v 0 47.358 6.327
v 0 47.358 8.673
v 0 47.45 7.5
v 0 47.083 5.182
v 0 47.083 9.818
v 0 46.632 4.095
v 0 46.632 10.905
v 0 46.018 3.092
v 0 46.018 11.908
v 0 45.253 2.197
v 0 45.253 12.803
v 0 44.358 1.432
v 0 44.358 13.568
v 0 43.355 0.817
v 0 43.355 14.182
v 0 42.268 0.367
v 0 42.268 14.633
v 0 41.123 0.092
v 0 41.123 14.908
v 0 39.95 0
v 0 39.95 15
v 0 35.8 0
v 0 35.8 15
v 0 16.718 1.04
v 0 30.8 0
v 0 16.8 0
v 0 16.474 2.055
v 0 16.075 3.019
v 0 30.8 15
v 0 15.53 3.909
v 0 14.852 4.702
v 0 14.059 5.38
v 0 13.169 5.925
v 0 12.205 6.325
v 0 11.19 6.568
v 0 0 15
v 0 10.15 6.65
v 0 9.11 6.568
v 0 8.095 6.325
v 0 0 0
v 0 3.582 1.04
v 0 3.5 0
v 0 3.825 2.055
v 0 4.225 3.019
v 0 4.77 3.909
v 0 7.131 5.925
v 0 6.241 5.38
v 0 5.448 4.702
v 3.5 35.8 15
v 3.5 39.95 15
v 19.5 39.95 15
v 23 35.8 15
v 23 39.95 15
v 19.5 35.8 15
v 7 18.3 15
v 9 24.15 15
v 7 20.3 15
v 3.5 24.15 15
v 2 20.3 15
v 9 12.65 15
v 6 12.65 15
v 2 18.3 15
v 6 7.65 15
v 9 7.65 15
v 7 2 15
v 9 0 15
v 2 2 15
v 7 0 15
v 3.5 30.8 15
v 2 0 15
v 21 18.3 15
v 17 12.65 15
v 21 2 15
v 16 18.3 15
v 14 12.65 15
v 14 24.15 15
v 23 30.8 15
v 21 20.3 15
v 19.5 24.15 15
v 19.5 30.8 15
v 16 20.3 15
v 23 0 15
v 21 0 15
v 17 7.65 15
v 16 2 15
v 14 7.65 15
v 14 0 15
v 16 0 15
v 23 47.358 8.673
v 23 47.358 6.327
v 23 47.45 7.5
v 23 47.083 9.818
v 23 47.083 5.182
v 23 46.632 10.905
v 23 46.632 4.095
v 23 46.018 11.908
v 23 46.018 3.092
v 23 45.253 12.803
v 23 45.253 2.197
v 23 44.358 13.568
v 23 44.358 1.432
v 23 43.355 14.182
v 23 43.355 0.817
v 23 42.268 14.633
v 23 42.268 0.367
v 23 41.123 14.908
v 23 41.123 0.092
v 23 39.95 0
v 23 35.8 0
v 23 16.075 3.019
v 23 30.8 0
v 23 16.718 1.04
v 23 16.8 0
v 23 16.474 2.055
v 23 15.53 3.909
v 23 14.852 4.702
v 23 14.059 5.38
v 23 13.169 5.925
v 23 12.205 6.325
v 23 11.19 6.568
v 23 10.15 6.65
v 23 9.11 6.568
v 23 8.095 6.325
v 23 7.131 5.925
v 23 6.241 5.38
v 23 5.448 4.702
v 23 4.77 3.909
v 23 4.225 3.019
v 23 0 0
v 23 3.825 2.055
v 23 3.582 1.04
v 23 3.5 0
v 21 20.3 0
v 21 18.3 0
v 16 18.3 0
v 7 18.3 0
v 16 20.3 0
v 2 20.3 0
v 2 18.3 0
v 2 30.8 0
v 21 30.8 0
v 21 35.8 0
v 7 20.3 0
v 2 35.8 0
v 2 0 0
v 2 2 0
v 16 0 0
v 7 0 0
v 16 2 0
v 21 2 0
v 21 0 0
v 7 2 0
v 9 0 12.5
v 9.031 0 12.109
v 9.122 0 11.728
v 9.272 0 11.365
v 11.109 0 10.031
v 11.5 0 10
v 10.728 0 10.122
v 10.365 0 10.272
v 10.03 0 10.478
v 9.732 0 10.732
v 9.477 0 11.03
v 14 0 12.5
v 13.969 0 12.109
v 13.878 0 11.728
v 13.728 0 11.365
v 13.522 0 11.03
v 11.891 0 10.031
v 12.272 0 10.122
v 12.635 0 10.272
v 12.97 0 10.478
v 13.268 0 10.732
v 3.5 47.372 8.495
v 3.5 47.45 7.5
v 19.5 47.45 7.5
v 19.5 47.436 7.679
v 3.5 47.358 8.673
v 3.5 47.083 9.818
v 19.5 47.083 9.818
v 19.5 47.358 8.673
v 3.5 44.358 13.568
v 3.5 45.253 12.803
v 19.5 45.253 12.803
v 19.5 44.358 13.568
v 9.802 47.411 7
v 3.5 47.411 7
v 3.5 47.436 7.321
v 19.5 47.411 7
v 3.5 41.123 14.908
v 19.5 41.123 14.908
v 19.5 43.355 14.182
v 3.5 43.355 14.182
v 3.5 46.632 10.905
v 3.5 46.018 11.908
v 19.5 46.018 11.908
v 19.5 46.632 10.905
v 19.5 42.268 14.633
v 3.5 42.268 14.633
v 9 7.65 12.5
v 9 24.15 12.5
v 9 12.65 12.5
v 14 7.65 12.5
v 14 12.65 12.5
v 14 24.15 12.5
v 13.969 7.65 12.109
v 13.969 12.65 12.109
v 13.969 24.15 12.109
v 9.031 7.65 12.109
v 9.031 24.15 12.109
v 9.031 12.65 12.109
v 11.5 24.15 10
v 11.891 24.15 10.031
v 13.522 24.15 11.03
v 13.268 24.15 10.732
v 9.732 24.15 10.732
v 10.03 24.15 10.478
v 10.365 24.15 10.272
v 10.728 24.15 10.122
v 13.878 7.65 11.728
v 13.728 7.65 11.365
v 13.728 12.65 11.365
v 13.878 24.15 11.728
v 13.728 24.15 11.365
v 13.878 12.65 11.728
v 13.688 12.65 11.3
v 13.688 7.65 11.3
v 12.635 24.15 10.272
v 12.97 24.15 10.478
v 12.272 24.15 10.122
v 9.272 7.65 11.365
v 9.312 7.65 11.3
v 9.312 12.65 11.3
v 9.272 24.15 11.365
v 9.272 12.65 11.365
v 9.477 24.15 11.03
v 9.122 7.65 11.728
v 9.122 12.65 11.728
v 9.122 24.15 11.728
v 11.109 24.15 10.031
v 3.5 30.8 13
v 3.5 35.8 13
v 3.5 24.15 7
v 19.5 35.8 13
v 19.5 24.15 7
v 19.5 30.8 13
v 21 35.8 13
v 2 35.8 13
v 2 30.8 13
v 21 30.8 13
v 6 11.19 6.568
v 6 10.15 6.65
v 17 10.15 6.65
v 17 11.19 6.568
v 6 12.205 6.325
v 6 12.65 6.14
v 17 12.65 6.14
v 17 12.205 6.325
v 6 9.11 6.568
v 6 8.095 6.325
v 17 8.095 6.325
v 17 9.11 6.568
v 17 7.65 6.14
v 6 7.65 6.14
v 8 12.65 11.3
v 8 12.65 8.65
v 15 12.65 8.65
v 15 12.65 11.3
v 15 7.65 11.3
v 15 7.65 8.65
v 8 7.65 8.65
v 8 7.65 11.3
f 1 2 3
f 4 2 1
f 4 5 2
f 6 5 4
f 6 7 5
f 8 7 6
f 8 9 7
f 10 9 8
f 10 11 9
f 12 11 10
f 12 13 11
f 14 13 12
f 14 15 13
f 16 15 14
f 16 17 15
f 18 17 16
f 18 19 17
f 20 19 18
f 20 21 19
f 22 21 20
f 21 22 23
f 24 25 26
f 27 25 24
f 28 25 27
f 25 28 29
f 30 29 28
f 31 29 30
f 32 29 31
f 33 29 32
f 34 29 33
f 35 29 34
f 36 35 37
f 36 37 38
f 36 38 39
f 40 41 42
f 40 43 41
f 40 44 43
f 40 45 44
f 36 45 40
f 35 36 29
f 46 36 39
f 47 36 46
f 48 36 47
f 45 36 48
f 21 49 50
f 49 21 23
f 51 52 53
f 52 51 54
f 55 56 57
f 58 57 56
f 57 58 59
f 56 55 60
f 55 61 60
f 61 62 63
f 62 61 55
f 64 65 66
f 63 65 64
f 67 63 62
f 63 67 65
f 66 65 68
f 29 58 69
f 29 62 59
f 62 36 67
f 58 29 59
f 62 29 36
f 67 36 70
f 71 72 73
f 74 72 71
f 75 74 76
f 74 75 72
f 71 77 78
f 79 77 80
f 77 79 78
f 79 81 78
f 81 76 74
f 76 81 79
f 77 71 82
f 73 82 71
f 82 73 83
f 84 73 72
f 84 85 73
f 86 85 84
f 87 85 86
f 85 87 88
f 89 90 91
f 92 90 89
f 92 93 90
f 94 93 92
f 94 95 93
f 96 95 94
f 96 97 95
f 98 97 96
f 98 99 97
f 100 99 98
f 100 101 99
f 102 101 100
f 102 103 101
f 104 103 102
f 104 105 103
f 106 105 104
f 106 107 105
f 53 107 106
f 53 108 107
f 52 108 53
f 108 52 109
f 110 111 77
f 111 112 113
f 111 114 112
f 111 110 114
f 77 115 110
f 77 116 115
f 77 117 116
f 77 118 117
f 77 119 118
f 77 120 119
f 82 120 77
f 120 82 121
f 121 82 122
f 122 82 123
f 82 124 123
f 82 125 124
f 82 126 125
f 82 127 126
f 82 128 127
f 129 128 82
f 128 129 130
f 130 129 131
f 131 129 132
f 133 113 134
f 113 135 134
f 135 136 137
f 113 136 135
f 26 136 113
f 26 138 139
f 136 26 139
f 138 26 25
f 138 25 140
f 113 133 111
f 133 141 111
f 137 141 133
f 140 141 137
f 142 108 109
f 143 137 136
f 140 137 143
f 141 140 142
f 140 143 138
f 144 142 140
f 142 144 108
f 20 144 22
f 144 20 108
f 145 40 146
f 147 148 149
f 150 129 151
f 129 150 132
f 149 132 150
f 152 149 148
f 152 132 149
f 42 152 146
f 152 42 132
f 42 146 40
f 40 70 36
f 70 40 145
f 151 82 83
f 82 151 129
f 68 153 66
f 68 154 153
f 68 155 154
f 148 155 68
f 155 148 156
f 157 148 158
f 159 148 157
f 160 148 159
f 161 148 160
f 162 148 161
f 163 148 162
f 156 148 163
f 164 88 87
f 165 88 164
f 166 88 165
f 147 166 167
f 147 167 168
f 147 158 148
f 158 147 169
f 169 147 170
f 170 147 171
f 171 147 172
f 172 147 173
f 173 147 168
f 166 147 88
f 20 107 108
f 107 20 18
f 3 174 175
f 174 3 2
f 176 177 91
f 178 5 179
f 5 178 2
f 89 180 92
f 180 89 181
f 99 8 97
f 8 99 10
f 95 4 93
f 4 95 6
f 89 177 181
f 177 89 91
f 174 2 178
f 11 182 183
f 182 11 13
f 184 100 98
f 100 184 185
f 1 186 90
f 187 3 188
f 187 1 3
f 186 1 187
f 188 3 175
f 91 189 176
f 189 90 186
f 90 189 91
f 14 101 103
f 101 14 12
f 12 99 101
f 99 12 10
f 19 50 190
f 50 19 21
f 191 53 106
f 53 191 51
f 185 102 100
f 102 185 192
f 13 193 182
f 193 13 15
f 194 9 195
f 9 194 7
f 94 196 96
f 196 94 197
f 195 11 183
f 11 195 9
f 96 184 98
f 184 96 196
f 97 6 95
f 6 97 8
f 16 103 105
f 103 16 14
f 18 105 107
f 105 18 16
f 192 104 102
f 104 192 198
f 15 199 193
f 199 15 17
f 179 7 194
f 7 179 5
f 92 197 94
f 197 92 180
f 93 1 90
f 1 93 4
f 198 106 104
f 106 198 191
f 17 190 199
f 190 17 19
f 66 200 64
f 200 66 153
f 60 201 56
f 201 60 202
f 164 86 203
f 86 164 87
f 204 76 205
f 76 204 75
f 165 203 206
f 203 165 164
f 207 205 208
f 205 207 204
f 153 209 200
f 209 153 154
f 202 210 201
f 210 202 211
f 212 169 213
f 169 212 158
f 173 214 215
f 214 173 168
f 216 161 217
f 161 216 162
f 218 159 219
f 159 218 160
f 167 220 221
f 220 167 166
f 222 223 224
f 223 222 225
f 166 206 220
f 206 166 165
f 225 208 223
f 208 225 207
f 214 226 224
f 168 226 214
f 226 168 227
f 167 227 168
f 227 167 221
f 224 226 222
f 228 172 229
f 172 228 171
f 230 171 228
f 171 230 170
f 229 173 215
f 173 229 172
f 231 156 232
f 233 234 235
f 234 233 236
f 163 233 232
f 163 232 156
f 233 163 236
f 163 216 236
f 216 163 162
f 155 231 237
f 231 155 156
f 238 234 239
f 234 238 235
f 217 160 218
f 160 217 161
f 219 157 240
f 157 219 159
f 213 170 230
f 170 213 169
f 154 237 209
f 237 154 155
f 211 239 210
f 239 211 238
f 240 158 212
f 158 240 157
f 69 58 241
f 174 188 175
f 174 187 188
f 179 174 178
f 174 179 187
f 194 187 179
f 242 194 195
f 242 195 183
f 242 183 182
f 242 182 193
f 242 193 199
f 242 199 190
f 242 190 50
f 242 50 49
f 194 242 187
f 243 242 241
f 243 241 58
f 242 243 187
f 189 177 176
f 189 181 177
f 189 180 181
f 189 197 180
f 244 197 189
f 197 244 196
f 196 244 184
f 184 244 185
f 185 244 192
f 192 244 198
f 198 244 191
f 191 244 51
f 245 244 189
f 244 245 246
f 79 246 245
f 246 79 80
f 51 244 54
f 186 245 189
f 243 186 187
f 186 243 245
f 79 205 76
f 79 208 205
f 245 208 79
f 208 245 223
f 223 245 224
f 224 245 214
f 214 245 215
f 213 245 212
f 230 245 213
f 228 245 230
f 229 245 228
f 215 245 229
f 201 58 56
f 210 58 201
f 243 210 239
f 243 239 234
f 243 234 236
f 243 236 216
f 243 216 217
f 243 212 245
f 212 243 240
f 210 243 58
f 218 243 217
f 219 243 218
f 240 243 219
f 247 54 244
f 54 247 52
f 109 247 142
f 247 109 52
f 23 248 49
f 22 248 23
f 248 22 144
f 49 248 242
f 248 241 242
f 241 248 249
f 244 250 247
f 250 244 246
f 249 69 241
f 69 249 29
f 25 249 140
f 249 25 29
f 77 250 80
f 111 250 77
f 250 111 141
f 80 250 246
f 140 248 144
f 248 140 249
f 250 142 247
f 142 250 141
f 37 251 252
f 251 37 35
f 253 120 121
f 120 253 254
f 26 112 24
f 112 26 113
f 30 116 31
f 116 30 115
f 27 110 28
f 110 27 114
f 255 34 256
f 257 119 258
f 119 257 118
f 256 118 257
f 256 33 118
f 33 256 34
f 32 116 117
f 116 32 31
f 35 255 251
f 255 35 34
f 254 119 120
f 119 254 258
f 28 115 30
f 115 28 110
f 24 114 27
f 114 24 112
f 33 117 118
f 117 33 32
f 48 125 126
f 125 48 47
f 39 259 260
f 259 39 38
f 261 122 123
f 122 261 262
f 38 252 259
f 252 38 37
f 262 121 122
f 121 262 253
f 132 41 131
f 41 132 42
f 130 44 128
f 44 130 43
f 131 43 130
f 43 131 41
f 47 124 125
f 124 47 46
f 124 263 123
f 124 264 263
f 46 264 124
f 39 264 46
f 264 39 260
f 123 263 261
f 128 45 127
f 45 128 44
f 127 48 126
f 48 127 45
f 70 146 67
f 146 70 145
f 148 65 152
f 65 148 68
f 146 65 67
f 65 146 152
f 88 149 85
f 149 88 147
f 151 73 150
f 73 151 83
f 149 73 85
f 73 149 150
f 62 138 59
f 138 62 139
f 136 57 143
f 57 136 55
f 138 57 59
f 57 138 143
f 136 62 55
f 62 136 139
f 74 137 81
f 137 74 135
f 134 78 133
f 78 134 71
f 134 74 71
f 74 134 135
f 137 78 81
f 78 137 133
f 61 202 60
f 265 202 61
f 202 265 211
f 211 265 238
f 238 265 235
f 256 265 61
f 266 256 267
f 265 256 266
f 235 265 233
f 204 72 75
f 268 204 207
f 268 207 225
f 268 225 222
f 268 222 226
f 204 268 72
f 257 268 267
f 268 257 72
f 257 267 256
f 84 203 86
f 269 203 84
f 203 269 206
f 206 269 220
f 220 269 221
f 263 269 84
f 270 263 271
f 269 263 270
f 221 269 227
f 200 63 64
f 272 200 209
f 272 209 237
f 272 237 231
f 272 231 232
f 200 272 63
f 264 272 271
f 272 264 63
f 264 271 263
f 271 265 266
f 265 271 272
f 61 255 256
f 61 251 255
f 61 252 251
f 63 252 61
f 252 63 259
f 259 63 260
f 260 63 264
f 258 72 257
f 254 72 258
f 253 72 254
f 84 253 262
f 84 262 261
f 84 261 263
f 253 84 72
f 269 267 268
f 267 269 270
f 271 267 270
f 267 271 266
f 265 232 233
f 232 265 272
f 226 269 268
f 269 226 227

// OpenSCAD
// Setup detail level on curved surfaces
$fn=40;
// Define the dimensions of the intended sensor.
hallx=16;
hally=23.3;
hallz=8;
// Define width and height of holes for zip ties.
zipw=5;
ziph=2;
// The diameter of the sensor wire
wiredia=5;
// The safety margin on the various surfaces.
margin=zipw+2;
// Diameter of the tube that the sensor attaches to.
tubedia=13.3;

difference()
 {
    // The basic outline of the part
    union()
    {
        cube([hallx+margin,hally+margin*2.5+tubedia/2-(hallz+margin)/2,hallz+margin]);
        translate([0,hally+margin*2.5+tubedia/2-(hallz+margin)/2,(hallz+margin)/2]) rotate([0,90,0]) cylinder(d=hallz+margin, h=hallx+margin);
    }
    
    // Cut out recess for the hall effect sensor.
    translate([margin/2,margin*2.5+tubedia/2,margin]) cube([hallx,hally,hallz]);

    // Cutout for the hall sensor zipties 
    translate([0,hally+margin*2.5+tubedia/2-(hallz+margin)/2-hally/2+zipw/2,hallz+margin-ziph]) cube([hallx+margin, zipw, ziph]);
    
    // Hall mount side ziptie cutouts
    translate([0,hally+margin*2.5+tubedia/2-(hallz+margin)/2-hally/2+zipw/2,0]) cube([ziph, zipw, hallx+margin]);
    translate([hallx+margin-ziph,hally+margin*2.5+tubedia/2-(hallz+margin)/2-hally/2+zipw/2,0]) cube([ziph, zipw, hallx+margin]);
    
    // Cutout the recess for the mounting tube
    translate([0,tubedia/2+margin/2,0]) rotate([0,90,0]) cylinder(h=hallx+margin, d=tubedia);
    
    // Cutout the recess for the sensor wire.
    translate([(hallx+margin)/2,-1,hallz+margin-wiredia/2]) rotate([-90,0,0])
    {
        translate([-wiredia/2, -wiredia,-wiredia/2*0])
        {
            cube([wiredia, wiredia, hally+margin*2+tubedia/2]);
        }
        cylinder(d=wiredia,h=hally+margin*2+tubedia/2);
    }
    
    // Tube outside mounting ziptie cutouts.
    translate([ziph,0,0]) cube([zipw,ziph,hallz+margin]);
    translate([hallx+margin-ziph-zipw,0,0]) cube([zipw,ziph,hallz+margin]);
    
    // Tube inside mounting ziptie cutouts.    
    translate([ziph,tubedia+margin-ziph,0]) cube([zipw,ziph,hallz+margin]);
    translate([hallx+margin-ziph-zipw,tubedia+margin-ziph,0]) cube([zipw,ziph,hallz+margin]);

    // Cable ziptie retainer cutouts. 
    translate([margin+ziph/2,tubedia/2+margin/2-zipw/2,0]) rotate([0,0,90]) cube([zipw,ziph,hallz+margin]);
    translate([hallx+margin-zipw-ziph/2,tubedia/2+margin/2-zipw/2,0])rotate([0,0,90]) cube([zipw,ziph,hallz+margin]);
    // Cable ziptie tube clearence channel
    translate([(hallx+margin)/2-((hallx+margin-zipw-ziph/2)-(margin+ziph/2))/2,tubedia/2+margin/2-zipw/2,tubedia/2-ziph]) cube([(hallx+margin-zipw-ziph/2)-(margin+ziph/2), zipw,ziph*2]);

    // Cable ziptie tube clearence channel
    translate([(hallx+margin)/2-((hallx+margin-zipw-ziph/2)-(margin+ziph/2))/2,tubedia/2+margin/2-zipw/2,tubedia-ziph]) cube([(hallx+margin-zipw-ziph/2)-(margin+ziph/2), zipw,ziph*2]);
}
